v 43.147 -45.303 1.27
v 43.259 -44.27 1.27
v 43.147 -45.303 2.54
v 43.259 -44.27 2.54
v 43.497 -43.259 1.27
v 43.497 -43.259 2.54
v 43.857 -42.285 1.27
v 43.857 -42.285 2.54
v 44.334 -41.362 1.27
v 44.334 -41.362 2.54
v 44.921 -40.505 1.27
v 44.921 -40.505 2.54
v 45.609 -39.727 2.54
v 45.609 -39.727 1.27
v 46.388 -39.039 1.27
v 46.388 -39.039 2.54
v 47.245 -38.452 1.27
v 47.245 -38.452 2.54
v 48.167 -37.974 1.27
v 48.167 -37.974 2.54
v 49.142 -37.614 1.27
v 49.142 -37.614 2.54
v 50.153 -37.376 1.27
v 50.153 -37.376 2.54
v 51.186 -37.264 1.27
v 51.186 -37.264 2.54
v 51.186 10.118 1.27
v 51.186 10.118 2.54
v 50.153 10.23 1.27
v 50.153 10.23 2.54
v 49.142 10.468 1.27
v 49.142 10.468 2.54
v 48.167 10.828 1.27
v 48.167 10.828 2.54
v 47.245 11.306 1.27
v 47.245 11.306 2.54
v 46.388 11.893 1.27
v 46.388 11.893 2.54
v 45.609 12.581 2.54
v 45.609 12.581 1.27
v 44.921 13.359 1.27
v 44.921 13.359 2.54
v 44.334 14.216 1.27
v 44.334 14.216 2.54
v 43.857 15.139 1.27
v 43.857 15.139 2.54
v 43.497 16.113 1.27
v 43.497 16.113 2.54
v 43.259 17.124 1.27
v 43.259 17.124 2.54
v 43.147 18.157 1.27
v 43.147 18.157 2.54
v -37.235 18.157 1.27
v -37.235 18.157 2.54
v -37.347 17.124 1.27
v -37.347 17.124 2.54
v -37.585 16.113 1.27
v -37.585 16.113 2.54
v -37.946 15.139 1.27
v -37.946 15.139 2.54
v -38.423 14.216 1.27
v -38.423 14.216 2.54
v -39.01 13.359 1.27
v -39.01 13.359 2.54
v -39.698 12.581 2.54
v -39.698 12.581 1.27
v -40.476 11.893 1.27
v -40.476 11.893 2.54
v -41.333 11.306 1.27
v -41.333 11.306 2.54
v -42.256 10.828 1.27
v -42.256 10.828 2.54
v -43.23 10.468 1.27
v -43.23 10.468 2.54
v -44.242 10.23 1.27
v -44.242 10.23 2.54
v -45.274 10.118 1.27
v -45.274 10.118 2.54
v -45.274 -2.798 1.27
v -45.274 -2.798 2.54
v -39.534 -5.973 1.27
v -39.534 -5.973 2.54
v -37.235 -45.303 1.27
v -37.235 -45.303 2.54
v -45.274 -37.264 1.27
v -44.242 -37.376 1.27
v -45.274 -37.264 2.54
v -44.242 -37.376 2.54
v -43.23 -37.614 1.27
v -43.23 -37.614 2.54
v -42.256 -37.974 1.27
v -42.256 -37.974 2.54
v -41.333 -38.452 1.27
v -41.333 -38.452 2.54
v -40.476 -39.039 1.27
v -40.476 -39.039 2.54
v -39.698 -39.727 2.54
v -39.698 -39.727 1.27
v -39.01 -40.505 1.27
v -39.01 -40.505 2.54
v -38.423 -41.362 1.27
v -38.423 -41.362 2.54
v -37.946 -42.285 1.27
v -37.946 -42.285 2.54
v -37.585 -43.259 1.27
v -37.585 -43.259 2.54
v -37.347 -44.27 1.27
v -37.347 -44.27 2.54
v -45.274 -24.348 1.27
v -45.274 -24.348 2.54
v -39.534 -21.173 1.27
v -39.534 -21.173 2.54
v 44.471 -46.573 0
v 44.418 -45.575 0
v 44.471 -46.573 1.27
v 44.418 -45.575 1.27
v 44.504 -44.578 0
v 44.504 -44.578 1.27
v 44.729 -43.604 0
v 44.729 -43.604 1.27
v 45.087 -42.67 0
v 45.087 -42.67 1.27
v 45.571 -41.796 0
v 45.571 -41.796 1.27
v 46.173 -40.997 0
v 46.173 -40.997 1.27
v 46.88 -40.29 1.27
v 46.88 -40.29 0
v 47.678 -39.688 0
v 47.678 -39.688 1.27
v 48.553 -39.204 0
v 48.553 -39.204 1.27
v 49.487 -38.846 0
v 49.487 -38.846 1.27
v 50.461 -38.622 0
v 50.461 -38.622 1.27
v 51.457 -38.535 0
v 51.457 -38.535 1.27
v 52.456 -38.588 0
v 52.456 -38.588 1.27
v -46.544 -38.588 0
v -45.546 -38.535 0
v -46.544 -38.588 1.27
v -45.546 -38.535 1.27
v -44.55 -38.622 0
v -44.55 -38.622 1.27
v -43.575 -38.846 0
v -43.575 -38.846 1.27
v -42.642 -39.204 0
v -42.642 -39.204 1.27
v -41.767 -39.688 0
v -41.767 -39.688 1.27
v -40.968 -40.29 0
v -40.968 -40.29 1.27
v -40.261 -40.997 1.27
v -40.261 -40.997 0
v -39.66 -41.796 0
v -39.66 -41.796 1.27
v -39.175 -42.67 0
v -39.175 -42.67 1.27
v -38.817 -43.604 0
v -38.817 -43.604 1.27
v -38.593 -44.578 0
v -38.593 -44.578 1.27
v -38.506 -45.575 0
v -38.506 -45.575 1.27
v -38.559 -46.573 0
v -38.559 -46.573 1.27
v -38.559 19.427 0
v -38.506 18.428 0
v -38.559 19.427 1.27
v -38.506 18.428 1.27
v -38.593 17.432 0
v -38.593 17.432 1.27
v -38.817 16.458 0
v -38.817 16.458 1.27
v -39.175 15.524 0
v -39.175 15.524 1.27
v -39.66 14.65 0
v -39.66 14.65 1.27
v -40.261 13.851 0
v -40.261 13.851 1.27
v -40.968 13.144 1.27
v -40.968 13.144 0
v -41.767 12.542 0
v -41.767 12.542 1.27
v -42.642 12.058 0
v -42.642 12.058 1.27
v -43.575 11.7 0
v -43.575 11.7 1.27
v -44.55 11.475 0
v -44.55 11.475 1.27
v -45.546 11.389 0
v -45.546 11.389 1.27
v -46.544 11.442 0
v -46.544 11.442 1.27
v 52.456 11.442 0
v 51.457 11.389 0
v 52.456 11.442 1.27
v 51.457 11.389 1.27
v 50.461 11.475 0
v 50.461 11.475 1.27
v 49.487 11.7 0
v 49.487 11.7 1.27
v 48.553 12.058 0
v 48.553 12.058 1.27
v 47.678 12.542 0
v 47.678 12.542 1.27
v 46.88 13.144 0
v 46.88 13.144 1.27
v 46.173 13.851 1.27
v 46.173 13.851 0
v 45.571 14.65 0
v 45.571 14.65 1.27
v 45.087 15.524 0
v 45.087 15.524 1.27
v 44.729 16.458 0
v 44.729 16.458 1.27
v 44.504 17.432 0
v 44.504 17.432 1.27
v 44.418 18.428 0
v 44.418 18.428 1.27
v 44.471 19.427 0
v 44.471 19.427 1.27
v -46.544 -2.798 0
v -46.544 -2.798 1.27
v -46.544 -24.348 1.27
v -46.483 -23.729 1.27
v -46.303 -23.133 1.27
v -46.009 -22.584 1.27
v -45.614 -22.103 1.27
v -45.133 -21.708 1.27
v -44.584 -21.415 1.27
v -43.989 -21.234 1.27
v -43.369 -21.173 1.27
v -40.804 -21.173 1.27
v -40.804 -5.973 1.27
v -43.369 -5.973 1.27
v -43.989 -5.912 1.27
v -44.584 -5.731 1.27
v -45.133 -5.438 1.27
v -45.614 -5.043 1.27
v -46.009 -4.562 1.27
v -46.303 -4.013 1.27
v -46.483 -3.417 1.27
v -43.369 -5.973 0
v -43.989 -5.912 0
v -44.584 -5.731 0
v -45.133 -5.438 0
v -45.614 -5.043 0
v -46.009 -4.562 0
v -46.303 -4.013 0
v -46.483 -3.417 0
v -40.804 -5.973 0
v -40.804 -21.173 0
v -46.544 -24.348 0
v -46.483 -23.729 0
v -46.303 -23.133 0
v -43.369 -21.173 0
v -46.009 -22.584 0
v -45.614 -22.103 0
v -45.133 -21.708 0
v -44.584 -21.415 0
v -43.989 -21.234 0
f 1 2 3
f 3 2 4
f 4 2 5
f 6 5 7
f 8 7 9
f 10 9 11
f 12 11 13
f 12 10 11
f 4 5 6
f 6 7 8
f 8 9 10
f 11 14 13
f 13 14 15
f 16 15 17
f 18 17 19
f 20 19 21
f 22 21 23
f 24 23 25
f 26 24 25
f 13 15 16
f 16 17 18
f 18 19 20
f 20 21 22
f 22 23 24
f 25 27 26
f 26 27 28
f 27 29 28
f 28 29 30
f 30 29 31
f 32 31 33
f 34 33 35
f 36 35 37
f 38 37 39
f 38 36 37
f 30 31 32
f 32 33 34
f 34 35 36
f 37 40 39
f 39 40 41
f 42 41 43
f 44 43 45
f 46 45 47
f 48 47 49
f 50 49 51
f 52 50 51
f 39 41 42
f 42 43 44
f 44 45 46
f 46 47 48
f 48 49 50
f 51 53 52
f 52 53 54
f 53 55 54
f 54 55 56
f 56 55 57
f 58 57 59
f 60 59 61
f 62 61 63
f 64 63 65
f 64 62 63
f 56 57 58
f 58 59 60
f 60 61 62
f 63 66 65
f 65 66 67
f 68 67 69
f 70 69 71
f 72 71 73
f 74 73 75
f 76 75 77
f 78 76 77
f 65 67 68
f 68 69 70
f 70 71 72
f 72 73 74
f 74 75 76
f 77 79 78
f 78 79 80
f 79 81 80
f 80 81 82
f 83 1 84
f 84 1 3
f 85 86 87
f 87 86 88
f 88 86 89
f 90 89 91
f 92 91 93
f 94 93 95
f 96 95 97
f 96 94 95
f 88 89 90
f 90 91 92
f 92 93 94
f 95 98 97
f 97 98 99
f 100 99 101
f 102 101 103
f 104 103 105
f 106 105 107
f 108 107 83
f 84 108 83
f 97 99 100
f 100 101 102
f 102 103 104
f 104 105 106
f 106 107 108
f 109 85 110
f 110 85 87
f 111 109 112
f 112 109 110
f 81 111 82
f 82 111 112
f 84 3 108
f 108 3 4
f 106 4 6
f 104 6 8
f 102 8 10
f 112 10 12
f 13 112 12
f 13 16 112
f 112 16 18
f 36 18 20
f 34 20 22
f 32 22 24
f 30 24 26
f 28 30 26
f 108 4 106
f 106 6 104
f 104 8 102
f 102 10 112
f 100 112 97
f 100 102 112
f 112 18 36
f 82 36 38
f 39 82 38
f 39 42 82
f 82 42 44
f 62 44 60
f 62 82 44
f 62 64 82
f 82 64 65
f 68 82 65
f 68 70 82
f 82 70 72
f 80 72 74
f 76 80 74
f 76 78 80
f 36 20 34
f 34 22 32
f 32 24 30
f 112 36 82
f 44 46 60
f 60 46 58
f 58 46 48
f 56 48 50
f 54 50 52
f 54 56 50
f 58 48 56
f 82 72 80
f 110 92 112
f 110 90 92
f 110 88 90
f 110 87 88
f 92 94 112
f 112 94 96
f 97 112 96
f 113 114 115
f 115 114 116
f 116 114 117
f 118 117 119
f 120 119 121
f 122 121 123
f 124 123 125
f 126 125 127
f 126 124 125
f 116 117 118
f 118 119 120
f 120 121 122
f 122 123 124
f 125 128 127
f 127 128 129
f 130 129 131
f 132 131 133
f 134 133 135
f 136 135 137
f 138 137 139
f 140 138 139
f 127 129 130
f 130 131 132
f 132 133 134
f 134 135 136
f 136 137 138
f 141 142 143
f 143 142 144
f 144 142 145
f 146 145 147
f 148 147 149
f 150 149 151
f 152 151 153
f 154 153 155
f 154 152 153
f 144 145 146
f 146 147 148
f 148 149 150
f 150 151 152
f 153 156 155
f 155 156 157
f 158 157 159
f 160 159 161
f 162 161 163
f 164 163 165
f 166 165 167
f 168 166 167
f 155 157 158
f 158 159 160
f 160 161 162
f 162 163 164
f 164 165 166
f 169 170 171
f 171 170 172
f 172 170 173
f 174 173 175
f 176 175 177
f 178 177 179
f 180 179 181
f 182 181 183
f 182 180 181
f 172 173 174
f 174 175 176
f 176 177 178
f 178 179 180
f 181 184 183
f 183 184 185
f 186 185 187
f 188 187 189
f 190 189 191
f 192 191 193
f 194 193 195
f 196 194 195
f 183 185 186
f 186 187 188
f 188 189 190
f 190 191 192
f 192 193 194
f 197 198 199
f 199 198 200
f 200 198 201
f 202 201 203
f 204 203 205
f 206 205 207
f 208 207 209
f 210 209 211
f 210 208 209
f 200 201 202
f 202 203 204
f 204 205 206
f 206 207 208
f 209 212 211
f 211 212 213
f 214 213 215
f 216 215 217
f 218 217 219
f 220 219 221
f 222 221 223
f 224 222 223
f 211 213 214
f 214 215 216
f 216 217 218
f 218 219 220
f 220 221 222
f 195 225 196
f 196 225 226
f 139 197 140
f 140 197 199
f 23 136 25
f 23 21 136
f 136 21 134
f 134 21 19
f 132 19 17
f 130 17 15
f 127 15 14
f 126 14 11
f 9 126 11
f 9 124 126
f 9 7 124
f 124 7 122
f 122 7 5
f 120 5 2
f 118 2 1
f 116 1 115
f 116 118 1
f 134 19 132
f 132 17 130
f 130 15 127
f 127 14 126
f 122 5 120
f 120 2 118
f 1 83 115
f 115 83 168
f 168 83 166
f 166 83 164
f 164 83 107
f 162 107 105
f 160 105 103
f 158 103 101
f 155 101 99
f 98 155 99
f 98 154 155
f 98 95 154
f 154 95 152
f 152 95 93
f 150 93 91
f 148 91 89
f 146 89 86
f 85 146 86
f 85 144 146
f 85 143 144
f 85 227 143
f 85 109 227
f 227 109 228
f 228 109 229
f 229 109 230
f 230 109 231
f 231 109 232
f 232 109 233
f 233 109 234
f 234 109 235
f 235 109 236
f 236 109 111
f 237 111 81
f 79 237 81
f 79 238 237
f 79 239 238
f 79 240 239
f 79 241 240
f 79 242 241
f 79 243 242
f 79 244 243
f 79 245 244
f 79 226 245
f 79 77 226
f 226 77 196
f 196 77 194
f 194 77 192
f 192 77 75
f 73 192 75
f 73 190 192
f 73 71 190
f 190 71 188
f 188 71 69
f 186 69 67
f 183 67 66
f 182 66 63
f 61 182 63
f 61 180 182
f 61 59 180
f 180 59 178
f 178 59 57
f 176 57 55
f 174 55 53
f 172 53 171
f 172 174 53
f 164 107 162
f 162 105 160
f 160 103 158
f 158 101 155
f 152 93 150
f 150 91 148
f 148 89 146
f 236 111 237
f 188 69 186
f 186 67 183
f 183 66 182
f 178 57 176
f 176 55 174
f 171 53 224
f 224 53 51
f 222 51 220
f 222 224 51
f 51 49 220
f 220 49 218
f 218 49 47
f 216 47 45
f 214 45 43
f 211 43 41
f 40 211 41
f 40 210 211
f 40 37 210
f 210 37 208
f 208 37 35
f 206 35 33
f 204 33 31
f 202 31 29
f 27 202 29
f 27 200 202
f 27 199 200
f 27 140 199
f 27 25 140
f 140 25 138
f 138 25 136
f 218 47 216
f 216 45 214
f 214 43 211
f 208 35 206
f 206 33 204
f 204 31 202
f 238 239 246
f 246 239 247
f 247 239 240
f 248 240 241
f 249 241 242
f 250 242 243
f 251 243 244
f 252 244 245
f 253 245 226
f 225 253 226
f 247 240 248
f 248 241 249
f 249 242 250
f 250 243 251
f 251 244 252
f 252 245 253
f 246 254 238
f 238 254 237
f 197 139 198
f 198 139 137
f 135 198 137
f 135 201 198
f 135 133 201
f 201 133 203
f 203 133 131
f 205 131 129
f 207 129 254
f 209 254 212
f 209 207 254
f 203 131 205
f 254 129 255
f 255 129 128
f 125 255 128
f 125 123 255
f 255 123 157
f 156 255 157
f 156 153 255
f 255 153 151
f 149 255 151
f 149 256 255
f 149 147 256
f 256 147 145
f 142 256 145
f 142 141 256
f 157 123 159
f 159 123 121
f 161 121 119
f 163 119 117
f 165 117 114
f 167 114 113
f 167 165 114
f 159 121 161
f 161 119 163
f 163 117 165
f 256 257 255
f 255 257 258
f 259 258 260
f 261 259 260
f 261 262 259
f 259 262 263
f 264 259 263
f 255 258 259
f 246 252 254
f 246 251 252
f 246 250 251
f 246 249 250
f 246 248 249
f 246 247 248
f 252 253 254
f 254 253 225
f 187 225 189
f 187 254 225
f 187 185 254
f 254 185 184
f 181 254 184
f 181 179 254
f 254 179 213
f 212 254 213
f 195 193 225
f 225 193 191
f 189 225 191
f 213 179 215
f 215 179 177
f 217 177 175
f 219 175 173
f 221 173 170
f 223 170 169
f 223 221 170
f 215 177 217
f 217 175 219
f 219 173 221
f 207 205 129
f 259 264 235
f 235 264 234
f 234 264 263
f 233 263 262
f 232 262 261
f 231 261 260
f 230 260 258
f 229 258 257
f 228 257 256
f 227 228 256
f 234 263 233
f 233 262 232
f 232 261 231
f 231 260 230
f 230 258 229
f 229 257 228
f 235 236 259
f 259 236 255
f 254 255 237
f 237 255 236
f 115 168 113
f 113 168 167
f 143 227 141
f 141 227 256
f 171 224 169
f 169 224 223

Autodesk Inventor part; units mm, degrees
ref_plane "YZ Plane" through (0, 0, 0) normal (1, 0, 0) x (0, 1, 0)
ref_plane "XZ Plane" through (0, 0, 0) normal (0, 1, 0) x (-1, 0, 0)
ref_plane "XY Plane" through (0, 0, 0) normal (0, 0, 1) x (1, 0, 0)
sketch "Sketch1" plane through (0, 0, 0) normal (0, 0, 1) x (1, 0, 0)
  line L0 (-43.5443, 19.427) -> (49.4557, 19.427)
  line L1 (52.4557, 16.427) -> (52.4557, -43.573)
  line L2 (49.4557, -46.573) -> (-43.5443, -46.573)
  line L3 (-46.5443, -43.573) -> (-46.5443, 16.427)
  arc A0 (-43.5443, 19.427) -> (-46.5443, 16.427) centre (-43.5443, 16.427) ccw
  arc A1 (-46.5443, -43.573) -> (-43.5443, -46.573) centre (-43.5443, -43.573) ccw
  arc A2 (49.4557, -46.573) -> (52.4557, -43.573) centre (49.4557, -43.573) ccw
  arc A3 (52.4557, 16.427) -> (49.4557, 19.427) centre (49.4557, 16.427) ccw
  point P0 (0, 0)
  point P1 (0, 0)
  point P2 (-46.5443, 19.427)
  point P3 (52.4557, -46.573)
  point P4 (52.4557, 19.427)
  dimension "d0" = 99
  dimension "d1" = 66
  dimension "d2" = 3
extrude "Extrusion1" add sketch "Sketch1" along normal blind 1.27
sketch "Sketch2" plane through (0, 0, 1.27) normal (0, 0, 1) x (1, 0, 0)
  line L0 (-46.5443, 16.427) -> (-46.5443, -43.573) projected
  line L1 (49.4557, 19.427) -> (-43.5443, 19.427) projected
  circle A0 centre (-42.7343, 15.617) radius 1.5875
  line L2 (-50.0562, -13.573) -> (79.0191, -13.573) construction
  line L3 (2.9557, 30.2203) -> (2.9557, -48.7988) construction
  circle A1 centre (-42.7343, -42.763) radius 1.5875
  circle A2 centre (48.6457, 15.617) radius 1.5875
  circle A3 centre (48.6457, -42.763) radius 1.5875
  point P0 (0, 0)
  dimension "d8" = 3.175
  dimension "d9" = 3.81
  dimension "d10" = 3.81
extrude "Extrusion2" cut sketch "Sketch2" against normal blind 25.4
sketch "Sketch3" plane through (0, 0, 1.27) normal (0, 0, 1) x (1, 0, 0)
  circle A0 centre (48.6457, 15.617) radius 1.5875 projected
  circle A1 centre (-42.7343, 15.617) radius 1.5875 projected
  circle A2 centre (-42.7343, -42.763) radius 1.5875 projected
  circle A3 centre (48.6457, -42.763) radius 1.5875 projected
  line L0 (49.4557, 19.427) -> (-43.5443, 19.427) projected
  arc A4 (-43.5443, 19.427) -> (-46.5443, 16.427) centre (-43.5443, 16.427) ccw projected
  line L1 (-46.5443, 16.427) -> (-46.5443, -43.573) construction
  arc A5 (-46.5443, -43.573) -> (-43.5443, -46.573) centre (-43.5443, -43.573) ccw projected
  line L2 (-43.5443, -46.573) -> (49.4557, -46.573) projected
  arc A6 (49.4557, -46.573) -> (52.4557, -43.573) centre (49.4557, -43.573) ccw projected
  line L3 (52.4557, -43.573) -> (52.4557, 16.427) projected
  arc A7 (52.4557, 16.427) -> (49.4557, 19.427) centre (49.4557, 16.427) ccw projected
  arc A8 (-43.5443, 19.427) -> (-46.5443, 16.427) centre (-43.5443, 16.427) ccw projected
  line L4 (49.4557, 19.427) -> (-43.5443, 19.427) projected
  circle A9 centre (48.6457, 15.617) radius 1.5875 projected
  circle A10 centre (-42.7343, 15.617) radius 1.5875 projected
  circle A11 centre (-42.7343, -42.763) radius 1.5875 projected
  circle A12 centre (48.6457, -42.763) radius 1.5875 projected
  arc A13 (52.4557, 16.427) -> (49.4557, 19.427) centre (49.4557, 16.427) ccw projected
  line L5 (52.4557, 16.427) -> (52.4557, -43.573) projected
  arc A14 (49.4557, -46.573) -> (52.4557, -43.573) centre (49.4557, -43.573) ccw projected
  line L6 (49.4557, -46.573) -> (-43.5443, -46.573) projected
  arc A15 (-46.5443, -43.573) -> (-43.5443, -46.573) centre (-43.5443, -43.573) ccw projected
  line L7 (-46.5443, -43.573) -> (-46.5443, 16.427) projected
  arc A16 (-43.5443, 19.427) -> (-46.5443, 16.427) centre (-43.5443, 16.427) ccw projected
  line L8 (-43.5443, 19.427) -> (49.4557, 19.427) projected
  line L9 (-43.5443, 19.427) -> (49.4557, 19.427) projected
  line L10 (-40.8039, 19.427) -> (-40.8039, -46.573) construction
  line L11 (49.4557, -46.573) -> (-43.5443, -46.573) projected
  line L12 (-40.8039, 19.427) -> (-51.3078, 19.427) construction
  line L13 (-40.8039, -46.573) -> (-51.3078, -46.573) construction
  line L14 (-40.8039, -21.173) -> (-51.3078, -21.173) construction
  line L15 (-40.8039, -5.973) -> (-51.3078, -5.973) construction
  line L16 (-46.5443, -43.573) -> (-46.5443, 16.427) projected
  line L17 (-46.5443, -5.973) -> (-40.8039, -5.973)
  line L18 (-40.8039, -5.973) -> (-40.8039, -21.173)
  line L19 (-40.8039, -21.173) -> (-46.5443, -21.173)
  line L20 (-46.5443, -21.173) -> (-46.5443, -5.973)
  point P0 (0, 0)
  dimension "d13" = 25.4
  dimension "d14" = 25.4
  dimension "d15" = 5.7404
extrude "Extrusion3" cut sketch "Sketch3" against normal blind 25.4 contours L17 L18 L19 L7
fillet "Fillet1" radius 3.175 2 edges at (-46.5443, -21.173, 0.635) (-46.5443, -5.973, 0.635)
sketch "Sketch9" plane through (0, 0, 1.27) normal (0, 0, 1) x (1, 0, 0)
  arc A0 (-43.5443, 19.427) -> (-46.5443, 16.427) centre (-43.5443, 16.427) ccw projected
  line L0 (-46.5443, -2.798) -> (-46.5443, 16.427) construction
  line L1 (-46.5443, 16.427) -> (-46.5443, -2.798)
  line L2 (-43.5443, 19.427) -> (-26.5771, 19.427) construction
  line L3 (49.4557, 19.427) -> (-43.5443, 19.427) projected
  line L4 (-45.6657, 18.5483) -> (-26.5771, -0.5403) construction
  line L5 (-45.6657, 18.5483) -> (-18.6704, 18.5483) construction
  circle A1 centre (-45.6657, 18.5483) radius 7.1603
  arc A2 (-46.5443, -2.798) -> (-43.3693, -5.973) centre (-43.3693, -2.798) ccw projected
  line L6 (-43.3693, -5.973) -> (-40.8039, -5.973) projected
  line L7 (-40.8039, -5.973) -> (-40.8039, -21.173) projected
  line L8 (-40.8039, -21.173) -> (-43.3693, -21.173) projected
  arc A3 (-43.3693, -21.173) -> (-46.5443, -24.348) centre (-43.3693, -24.348) ccw projected
  line L9 (-46.5443, -24.348) -> (-46.5443, -43.573) projected
  arc A4 (-46.5443, -43.573) -> (-43.5443, -46.573) centre (-43.5443, -43.573) ccw projected
  line L10 (-43.5443, -46.573) -> (49.4557, -46.573) projected
  arc A5 (49.4557, -46.573) -> (52.4557, -43.573) centre (49.4557, -43.573) ccw projected
  line L11 (52.4557, -43.573) -> (52.4557, 16.427) projected
  arc A6 (52.4557, 16.427) -> (49.4557, 19.427) centre (49.4557, 16.427) ccw projected
  line L12 (49.4557, 19.427) -> (-43.5443, 19.427) projected
  arc A7 (-43.5443, 19.427) -> (-46.5443, 16.427) centre (-43.5443, 16.427) ccw projected
  line L13 (-46.5443, 16.427) -> (-46.5443, -2.798) projected
  circle A8 centre (48.6457, 15.617) radius 1.5875 projected
  circle A9 centre (-42.7343, 15.617) radius 1.5875 projected
  circle A10 centre (-42.7343, -42.763) radius 1.5875 projected
  circle A11 centre (48.6457, -42.763) radius 1.5875 projected
  line L14 (-75.7777, -13.573) -> (114.1059, -13.573) construction
  line L15 (2.9557, 31.1348) -> (2.9557, -53.319) construction
  circle A12 centre (-45.6657, -45.6944) radius 7.1603
  line L16 (2.9557, -58.2809) -> (2.9557, 26.1729) construction
  circle A13 centre (51.577, 18.5483) radius 7.1603
  circle A14 centre (51.577, -45.6944) radius 7.1603
  point P0 (0, 0)
  dimension "d28" = 45
extrude "Extrusion5" cut sketch "Sketch9" against normal blind 12.7 contours L3 A1 L1 A0 | A0 L1 A1 L3 | A13 L11 A6 L3 | L3 A6 L11 A13 | A14 L10 A5 L11 | L11 A5 L10 A14 | A12 L9 A4 L10 | L10 A4 L9 A12
sketch "Sketch10" plane through (0, 0, 1.27) normal (0, 0, 1) x (1, 0, 0)
  arc A0 (52.4557, -38.5882) -> (44.4708, -46.573) centre (51.577, -45.6944) ccw projected
  line L0 (52.4557, -38.5882) -> (52.4557, 11.4421) projected
  arc A1 (44.4708, 19.427) -> (52.4557, 11.4421) centre (51.577, 18.5483) ccw projected
  line L1 (44.4708, 19.427) -> (-38.5595, 19.427) projected
  arc A2 (-46.5443, 11.4421) -> (-38.5595, 19.427) centre (-45.6657, 18.5483) ccw projected
  line L2 (-46.5443, 11.4421) -> (-46.5443, -2.798) projected
  arc A3 (-46.5443, -2.798) -> (-43.3693, -5.973) centre (-43.3693, -2.798) ccw projected
  line L3 (-43.3693, -5.973) -> (-40.8039, -5.973) projected
  line L4 (-40.8039, -5.973) -> (-40.8039, -21.173) projected
  line L5 (-40.8039, -21.173) -> (-43.3693, -21.173) projected
  arc A4 (-43.3693, -21.173) -> (-46.5443, -24.348) centre (-43.3693, -24.348) ccw projected
  line L6 (-46.5443, -24.348) -> (-46.5443, -38.5882) projected
  arc A5 (-38.5595, -46.573) -> (-46.5443, -38.5882) centre (-45.6657, -45.6944) ccw projected
  line L7 (-38.5595, -46.573) -> (44.4708, -46.573) projected
  line L8 (-36.7645, -45.303) -> (43.1467, -45.303)
  line L9 (-36.7645, 18.157) -> (43.1467, 18.157)
  line L10 (44.4708, 19.427) -> (-38.5595, 19.427) projected
  line L11 (-36.7645, -45.303) -> (-37.2353, -45.303)
  arc A6 (-38.5595, -46.573) -> (-46.5443, -38.5882) centre (-45.6657, -45.6944) ccw projected
  line L12 (-36.7645, 18.157) -> (-37.2353, 18.157)
  line L13 (51.1857, 10.118) -> (51.1857, -37.264)
  arc A7 (44.4708, 19.427) -> (52.4557, 11.4421) centre (51.577, 18.5483) ccw projected
  line L14 (-39.5339, -5.973) -> (-39.5339, -21.173)
  line L15 (-45.2743, -2.798) -> (-39.5339, -5.973)
  line L16 (-39.5339, -21.173) -> (-45.2743, -24.348)
  line L17 (51.1857, 10.118) -> (52.4557, 10.118) construction
  line L18 (52.4557, -38.5882) -> (52.4557, 11.4421) projected
  line L19 (43.1467, 18.157) -> (43.1467, 19.427) construction
  arc A8 (43.1467, 18.157) -> (51.1857, 10.118) centre (51.577, 18.5483) ccw
  line L20 (-56.5649, -13.573) -> (80.9191, -13.573) construction
  line L21 (2.9557, 34.2968) -> (2.9557, -68.6615) construction
  arc A9 (51.1857, -37.264) -> (43.1467, -45.303) centre (51.577, -45.6944) ccw
  arc A10 (-45.2743, 10.118) -> (-37.2353, 18.157) centre (-45.6657, 18.5483) ccw
  arc A11 (-37.2353, -45.303) -> (-45.2743, -37.264) centre (-45.6657, -45.6944) ccw
  line L22 (-45.2743, 10.118) -> (-45.2743, -2.798)
  line L23 (-45.2743, -37.264) -> (-45.2743, -24.348)
  line L24 (-46.5443, -43.573) -> (-46.5443, -24.348) projected
  point P0 (0, 0)
  dimension "d31" = 1.27
  dimension "d32" = 1.27
  dimension "d35" = 1.27
  dimension "d36" = 1.27
  dimension "d39" = 3.175
  dimension "d40" = 3.175
  dimension "d42" = 1.27
  dimension "d43" = 1.27
  dimension "d44" = 1.2791
extrude "Extrusion6" cut sketch "Sketch10" against normal blind 7.62 contours L11 A11 L23 L16 L14 L15 L22 A10 L12 L9 A8 L13 A9 L8
sketch "Sketch13" plane through (0, 0, 1.27) normal (0, 0, 1) x (1, 0, 0)
  arc A0 (51.1857, -37.264) -> (43.1467, -45.303) centre (51.577, -45.6944) ccw projected
  line L0 (43.1467, -45.303) -> (-37.2353, -45.303) projected
  arc A1 (-37.2353, -45.303) -> (-45.2743, -37.264) centre (-45.6657, -45.6944) ccw projected
  line L1 (-45.2743, -37.264) -> (-45.2743, -24.348) projected
  line L2 (-45.2743, -24.348) -> (-39.5339, -21.173) projected
  line L3 (-39.5339, -21.173) -> (-39.5339, -5.973) projected
  line L4 (-39.5339, -5.973) -> (-45.2743, -2.798) projected
  line L5 (-45.2743, -2.798) -> (-45.2743, 10.118) projected
  arc A2 (-45.2743, 10.118) -> (-37.2353, 18.157) centre (-45.6657, 18.5483) ccw projected
  line L6 (-37.2353, 18.157) -> (43.1467, 18.157) projected
  arc A3 (43.1467, 18.157) -> (51.1857, 10.118) centre (51.577, 18.5483) ccw projected
  line L7 (51.1857, 10.118) -> (51.1857, -37.264) projected
  arc A4 (52.4557, -38.5882) -> (44.4708, -46.573) centre (51.577, -45.6944) ccw projected
  line L8 (52.4557, -38.5882) -> (52.4557, 11.4421) projected
  arc A5 (44.4708, 19.427) -> (52.4557, 11.4421) centre (51.577, 18.5483) ccw projected
  line L9 (44.4708, 19.427) -> (-38.5595, 19.427) projected
  arc A6 (-46.5443, 11.4421) -> (-38.5595, 19.427) centre (-45.6657, 18.5483) ccw projected
  line L10 (-46.5443, 11.4421) -> (-46.5443, -2.798) projected
  arc A7 (-46.5443, -2.798) -> (-43.3693, -5.973) centre (-43.3693, -2.798) ccw projected
  line L11 (-43.3693, -5.973) -> (-40.8039, -5.973) projected
  line L12 (-40.8039, -5.973) -> (-40.8039, -21.173) projected
  line L13 (-40.8039, -21.173) -> (-43.3693, -21.173) projected
  arc A8 (-43.3693, -21.173) -> (-46.5443, -24.348) centre (-43.3693, -24.348) ccw projected
  line L14 (-46.5443, -24.348) -> (-46.5443, -38.5882) projected
  arc A9 (-38.5595, -46.573) -> (-46.5443, -38.5882) centre (-45.6657, -45.6944) ccw projected
  line L15 (-38.5595, -46.573) -> (44.4708, -46.573) projected
  point P0 (0, 0)
extrude "Extrusion9" add sketch "Sketch13" along normal blind 1.27 and the other way blind 1.27 contours A0 L0 A1 L1 L2 L3 L4 L5 A2 L6 A3 L7
properties part number "battbase__lid_final"
